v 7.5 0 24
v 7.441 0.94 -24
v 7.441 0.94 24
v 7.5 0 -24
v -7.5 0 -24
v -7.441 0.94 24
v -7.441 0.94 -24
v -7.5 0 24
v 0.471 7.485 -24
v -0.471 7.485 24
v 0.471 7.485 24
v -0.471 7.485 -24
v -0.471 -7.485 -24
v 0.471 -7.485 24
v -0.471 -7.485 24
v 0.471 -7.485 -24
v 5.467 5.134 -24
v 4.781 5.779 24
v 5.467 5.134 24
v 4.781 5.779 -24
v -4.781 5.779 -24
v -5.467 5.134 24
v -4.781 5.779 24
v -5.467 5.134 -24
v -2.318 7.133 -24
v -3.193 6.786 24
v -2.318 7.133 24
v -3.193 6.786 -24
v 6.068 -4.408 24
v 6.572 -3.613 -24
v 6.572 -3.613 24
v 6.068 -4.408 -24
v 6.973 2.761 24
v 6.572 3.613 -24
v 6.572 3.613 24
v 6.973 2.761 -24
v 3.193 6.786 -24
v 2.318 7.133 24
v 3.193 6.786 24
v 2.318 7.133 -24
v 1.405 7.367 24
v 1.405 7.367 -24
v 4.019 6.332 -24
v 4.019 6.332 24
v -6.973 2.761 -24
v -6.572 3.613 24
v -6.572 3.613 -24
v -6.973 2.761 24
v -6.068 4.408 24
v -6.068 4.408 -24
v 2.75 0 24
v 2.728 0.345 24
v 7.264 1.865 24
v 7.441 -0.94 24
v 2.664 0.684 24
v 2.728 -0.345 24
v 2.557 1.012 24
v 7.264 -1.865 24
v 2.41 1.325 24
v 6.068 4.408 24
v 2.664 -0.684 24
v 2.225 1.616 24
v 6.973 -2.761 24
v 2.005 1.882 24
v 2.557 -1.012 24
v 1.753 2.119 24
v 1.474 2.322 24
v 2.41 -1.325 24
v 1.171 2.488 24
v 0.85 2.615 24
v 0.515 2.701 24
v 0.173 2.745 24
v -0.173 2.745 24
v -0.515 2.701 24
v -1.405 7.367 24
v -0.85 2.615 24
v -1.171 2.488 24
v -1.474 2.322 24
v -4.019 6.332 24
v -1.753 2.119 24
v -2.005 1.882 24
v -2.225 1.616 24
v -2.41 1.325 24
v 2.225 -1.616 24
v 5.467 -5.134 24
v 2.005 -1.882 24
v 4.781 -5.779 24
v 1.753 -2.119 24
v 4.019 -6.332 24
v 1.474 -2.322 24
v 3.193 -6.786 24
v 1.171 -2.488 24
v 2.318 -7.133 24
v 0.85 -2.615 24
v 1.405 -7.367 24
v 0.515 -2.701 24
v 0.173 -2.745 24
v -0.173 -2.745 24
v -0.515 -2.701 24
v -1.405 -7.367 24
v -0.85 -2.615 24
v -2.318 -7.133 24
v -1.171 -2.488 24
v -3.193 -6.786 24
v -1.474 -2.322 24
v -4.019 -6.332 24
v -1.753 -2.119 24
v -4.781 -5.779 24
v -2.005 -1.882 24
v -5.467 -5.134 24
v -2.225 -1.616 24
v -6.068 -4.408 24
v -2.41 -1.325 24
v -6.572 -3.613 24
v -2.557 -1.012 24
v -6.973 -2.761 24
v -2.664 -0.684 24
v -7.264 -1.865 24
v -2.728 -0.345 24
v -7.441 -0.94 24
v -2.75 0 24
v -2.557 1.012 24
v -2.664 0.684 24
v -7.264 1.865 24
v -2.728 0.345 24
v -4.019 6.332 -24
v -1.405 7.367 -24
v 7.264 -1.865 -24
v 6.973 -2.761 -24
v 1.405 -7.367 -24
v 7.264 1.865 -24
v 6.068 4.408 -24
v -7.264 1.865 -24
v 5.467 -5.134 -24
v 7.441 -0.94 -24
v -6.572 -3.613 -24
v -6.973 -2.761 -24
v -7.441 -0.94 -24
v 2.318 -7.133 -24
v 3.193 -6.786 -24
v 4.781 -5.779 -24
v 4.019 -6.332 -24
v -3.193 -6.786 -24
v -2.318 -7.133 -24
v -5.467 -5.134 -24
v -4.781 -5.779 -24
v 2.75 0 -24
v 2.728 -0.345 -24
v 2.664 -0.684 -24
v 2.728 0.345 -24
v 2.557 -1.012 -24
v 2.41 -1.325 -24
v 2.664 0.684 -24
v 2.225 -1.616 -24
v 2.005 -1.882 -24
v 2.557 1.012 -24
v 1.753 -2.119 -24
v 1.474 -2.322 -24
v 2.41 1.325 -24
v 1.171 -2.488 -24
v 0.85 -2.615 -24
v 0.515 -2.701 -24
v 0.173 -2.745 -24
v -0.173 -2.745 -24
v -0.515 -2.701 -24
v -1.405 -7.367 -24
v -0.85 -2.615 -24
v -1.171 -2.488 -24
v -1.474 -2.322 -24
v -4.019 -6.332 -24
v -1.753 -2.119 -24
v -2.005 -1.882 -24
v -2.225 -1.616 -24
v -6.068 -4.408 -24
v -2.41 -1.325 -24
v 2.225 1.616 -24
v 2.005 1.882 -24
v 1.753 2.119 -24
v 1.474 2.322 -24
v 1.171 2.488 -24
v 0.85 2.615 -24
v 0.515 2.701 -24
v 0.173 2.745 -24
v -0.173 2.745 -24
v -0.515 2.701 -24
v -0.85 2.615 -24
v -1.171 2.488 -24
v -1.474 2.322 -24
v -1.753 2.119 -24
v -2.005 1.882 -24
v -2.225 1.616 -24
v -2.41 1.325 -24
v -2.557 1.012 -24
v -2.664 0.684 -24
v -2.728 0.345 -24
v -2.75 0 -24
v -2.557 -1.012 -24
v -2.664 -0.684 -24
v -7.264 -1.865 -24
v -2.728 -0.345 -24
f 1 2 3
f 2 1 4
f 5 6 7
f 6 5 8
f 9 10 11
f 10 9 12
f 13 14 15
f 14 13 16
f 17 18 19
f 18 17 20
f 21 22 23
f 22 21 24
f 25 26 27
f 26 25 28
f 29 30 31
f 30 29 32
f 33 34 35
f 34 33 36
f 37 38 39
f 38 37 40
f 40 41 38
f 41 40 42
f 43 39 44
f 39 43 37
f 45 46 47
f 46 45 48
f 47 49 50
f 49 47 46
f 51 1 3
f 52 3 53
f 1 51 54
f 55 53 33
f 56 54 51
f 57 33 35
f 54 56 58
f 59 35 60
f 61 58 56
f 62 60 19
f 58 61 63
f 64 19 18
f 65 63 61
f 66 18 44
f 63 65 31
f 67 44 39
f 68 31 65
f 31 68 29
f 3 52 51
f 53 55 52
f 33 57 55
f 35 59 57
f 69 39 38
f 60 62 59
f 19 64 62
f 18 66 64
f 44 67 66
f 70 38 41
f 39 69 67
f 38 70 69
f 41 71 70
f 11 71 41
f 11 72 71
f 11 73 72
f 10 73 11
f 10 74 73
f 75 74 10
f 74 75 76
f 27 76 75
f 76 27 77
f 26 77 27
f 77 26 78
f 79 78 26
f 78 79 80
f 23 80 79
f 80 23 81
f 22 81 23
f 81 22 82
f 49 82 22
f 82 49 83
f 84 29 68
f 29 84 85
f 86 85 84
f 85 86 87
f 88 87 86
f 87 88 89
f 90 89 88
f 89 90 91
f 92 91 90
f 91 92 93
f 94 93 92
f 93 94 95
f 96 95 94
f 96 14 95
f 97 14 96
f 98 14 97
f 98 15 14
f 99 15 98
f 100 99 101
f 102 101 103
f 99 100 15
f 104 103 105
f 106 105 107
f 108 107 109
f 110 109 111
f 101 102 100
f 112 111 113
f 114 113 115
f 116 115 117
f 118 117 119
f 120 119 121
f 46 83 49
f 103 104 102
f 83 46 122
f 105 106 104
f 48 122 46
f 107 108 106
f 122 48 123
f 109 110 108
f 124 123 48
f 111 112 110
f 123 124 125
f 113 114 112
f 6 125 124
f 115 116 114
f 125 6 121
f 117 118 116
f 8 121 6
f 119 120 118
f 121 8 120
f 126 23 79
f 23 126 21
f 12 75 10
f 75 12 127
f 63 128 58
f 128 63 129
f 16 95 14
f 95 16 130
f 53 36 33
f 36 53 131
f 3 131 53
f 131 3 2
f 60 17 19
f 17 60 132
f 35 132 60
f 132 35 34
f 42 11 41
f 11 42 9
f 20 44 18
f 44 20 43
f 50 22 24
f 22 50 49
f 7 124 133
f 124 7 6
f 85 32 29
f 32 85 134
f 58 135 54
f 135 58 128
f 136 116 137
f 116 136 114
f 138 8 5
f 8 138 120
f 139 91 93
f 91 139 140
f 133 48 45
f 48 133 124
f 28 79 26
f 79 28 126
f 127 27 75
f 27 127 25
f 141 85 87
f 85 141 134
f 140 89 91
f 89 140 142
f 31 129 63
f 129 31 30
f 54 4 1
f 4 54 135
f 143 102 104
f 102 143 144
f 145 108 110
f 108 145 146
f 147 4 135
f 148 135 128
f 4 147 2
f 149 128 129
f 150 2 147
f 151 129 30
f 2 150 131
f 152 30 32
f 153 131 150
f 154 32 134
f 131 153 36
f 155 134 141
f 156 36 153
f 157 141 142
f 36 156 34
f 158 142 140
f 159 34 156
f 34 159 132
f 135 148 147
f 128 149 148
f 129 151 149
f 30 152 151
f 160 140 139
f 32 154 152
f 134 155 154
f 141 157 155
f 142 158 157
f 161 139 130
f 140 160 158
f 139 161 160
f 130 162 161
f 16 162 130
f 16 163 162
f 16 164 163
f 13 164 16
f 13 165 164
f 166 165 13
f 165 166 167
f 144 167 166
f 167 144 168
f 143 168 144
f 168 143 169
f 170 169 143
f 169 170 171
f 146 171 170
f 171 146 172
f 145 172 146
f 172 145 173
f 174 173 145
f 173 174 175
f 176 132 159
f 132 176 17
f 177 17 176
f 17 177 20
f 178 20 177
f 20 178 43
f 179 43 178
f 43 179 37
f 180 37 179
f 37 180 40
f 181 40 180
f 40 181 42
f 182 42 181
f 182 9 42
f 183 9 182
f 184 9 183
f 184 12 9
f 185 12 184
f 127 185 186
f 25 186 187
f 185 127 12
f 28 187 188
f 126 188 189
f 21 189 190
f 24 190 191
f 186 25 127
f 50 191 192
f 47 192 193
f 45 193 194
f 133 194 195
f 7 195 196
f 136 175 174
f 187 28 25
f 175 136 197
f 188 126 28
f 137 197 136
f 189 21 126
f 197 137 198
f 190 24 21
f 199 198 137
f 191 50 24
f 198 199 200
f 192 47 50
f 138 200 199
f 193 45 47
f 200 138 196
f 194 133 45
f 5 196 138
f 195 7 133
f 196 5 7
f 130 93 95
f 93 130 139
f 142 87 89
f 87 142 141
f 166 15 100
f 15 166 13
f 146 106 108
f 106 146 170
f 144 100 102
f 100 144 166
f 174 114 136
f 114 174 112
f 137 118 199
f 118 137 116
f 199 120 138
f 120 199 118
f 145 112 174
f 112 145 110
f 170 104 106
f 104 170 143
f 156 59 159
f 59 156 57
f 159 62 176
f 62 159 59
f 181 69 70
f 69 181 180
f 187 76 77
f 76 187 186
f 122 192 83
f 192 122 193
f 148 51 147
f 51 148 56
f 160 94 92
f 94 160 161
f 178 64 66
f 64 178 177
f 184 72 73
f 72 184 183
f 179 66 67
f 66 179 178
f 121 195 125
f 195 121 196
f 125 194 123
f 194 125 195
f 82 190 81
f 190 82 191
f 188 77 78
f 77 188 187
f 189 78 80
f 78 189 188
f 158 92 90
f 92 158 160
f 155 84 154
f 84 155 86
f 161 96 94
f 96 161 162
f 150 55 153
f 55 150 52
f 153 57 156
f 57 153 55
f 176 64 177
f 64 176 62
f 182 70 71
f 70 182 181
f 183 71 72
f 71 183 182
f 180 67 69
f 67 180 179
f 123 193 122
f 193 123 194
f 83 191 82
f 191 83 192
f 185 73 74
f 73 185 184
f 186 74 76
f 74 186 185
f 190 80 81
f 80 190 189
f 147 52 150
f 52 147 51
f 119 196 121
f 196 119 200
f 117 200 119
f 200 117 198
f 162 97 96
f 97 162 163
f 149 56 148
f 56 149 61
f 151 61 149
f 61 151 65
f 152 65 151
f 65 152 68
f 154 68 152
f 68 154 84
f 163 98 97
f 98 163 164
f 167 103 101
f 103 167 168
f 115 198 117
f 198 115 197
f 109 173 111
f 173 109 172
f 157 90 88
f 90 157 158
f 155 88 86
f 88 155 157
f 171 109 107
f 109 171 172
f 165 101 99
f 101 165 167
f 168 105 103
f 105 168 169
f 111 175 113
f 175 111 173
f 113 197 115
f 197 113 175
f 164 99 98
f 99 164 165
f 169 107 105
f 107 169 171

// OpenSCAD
$fn = 50;


difference() {
	union() {
		translate(v = [0, 0, -24.0000000000]) {
			cylinder(h = 48, r = 7.5000000000);
		}
	}
	union() {
		translate(v = [0, 0, -100.0000000000]) {
			cylinder(h = 200, r = 2.7500000000);
		}
	}
}
